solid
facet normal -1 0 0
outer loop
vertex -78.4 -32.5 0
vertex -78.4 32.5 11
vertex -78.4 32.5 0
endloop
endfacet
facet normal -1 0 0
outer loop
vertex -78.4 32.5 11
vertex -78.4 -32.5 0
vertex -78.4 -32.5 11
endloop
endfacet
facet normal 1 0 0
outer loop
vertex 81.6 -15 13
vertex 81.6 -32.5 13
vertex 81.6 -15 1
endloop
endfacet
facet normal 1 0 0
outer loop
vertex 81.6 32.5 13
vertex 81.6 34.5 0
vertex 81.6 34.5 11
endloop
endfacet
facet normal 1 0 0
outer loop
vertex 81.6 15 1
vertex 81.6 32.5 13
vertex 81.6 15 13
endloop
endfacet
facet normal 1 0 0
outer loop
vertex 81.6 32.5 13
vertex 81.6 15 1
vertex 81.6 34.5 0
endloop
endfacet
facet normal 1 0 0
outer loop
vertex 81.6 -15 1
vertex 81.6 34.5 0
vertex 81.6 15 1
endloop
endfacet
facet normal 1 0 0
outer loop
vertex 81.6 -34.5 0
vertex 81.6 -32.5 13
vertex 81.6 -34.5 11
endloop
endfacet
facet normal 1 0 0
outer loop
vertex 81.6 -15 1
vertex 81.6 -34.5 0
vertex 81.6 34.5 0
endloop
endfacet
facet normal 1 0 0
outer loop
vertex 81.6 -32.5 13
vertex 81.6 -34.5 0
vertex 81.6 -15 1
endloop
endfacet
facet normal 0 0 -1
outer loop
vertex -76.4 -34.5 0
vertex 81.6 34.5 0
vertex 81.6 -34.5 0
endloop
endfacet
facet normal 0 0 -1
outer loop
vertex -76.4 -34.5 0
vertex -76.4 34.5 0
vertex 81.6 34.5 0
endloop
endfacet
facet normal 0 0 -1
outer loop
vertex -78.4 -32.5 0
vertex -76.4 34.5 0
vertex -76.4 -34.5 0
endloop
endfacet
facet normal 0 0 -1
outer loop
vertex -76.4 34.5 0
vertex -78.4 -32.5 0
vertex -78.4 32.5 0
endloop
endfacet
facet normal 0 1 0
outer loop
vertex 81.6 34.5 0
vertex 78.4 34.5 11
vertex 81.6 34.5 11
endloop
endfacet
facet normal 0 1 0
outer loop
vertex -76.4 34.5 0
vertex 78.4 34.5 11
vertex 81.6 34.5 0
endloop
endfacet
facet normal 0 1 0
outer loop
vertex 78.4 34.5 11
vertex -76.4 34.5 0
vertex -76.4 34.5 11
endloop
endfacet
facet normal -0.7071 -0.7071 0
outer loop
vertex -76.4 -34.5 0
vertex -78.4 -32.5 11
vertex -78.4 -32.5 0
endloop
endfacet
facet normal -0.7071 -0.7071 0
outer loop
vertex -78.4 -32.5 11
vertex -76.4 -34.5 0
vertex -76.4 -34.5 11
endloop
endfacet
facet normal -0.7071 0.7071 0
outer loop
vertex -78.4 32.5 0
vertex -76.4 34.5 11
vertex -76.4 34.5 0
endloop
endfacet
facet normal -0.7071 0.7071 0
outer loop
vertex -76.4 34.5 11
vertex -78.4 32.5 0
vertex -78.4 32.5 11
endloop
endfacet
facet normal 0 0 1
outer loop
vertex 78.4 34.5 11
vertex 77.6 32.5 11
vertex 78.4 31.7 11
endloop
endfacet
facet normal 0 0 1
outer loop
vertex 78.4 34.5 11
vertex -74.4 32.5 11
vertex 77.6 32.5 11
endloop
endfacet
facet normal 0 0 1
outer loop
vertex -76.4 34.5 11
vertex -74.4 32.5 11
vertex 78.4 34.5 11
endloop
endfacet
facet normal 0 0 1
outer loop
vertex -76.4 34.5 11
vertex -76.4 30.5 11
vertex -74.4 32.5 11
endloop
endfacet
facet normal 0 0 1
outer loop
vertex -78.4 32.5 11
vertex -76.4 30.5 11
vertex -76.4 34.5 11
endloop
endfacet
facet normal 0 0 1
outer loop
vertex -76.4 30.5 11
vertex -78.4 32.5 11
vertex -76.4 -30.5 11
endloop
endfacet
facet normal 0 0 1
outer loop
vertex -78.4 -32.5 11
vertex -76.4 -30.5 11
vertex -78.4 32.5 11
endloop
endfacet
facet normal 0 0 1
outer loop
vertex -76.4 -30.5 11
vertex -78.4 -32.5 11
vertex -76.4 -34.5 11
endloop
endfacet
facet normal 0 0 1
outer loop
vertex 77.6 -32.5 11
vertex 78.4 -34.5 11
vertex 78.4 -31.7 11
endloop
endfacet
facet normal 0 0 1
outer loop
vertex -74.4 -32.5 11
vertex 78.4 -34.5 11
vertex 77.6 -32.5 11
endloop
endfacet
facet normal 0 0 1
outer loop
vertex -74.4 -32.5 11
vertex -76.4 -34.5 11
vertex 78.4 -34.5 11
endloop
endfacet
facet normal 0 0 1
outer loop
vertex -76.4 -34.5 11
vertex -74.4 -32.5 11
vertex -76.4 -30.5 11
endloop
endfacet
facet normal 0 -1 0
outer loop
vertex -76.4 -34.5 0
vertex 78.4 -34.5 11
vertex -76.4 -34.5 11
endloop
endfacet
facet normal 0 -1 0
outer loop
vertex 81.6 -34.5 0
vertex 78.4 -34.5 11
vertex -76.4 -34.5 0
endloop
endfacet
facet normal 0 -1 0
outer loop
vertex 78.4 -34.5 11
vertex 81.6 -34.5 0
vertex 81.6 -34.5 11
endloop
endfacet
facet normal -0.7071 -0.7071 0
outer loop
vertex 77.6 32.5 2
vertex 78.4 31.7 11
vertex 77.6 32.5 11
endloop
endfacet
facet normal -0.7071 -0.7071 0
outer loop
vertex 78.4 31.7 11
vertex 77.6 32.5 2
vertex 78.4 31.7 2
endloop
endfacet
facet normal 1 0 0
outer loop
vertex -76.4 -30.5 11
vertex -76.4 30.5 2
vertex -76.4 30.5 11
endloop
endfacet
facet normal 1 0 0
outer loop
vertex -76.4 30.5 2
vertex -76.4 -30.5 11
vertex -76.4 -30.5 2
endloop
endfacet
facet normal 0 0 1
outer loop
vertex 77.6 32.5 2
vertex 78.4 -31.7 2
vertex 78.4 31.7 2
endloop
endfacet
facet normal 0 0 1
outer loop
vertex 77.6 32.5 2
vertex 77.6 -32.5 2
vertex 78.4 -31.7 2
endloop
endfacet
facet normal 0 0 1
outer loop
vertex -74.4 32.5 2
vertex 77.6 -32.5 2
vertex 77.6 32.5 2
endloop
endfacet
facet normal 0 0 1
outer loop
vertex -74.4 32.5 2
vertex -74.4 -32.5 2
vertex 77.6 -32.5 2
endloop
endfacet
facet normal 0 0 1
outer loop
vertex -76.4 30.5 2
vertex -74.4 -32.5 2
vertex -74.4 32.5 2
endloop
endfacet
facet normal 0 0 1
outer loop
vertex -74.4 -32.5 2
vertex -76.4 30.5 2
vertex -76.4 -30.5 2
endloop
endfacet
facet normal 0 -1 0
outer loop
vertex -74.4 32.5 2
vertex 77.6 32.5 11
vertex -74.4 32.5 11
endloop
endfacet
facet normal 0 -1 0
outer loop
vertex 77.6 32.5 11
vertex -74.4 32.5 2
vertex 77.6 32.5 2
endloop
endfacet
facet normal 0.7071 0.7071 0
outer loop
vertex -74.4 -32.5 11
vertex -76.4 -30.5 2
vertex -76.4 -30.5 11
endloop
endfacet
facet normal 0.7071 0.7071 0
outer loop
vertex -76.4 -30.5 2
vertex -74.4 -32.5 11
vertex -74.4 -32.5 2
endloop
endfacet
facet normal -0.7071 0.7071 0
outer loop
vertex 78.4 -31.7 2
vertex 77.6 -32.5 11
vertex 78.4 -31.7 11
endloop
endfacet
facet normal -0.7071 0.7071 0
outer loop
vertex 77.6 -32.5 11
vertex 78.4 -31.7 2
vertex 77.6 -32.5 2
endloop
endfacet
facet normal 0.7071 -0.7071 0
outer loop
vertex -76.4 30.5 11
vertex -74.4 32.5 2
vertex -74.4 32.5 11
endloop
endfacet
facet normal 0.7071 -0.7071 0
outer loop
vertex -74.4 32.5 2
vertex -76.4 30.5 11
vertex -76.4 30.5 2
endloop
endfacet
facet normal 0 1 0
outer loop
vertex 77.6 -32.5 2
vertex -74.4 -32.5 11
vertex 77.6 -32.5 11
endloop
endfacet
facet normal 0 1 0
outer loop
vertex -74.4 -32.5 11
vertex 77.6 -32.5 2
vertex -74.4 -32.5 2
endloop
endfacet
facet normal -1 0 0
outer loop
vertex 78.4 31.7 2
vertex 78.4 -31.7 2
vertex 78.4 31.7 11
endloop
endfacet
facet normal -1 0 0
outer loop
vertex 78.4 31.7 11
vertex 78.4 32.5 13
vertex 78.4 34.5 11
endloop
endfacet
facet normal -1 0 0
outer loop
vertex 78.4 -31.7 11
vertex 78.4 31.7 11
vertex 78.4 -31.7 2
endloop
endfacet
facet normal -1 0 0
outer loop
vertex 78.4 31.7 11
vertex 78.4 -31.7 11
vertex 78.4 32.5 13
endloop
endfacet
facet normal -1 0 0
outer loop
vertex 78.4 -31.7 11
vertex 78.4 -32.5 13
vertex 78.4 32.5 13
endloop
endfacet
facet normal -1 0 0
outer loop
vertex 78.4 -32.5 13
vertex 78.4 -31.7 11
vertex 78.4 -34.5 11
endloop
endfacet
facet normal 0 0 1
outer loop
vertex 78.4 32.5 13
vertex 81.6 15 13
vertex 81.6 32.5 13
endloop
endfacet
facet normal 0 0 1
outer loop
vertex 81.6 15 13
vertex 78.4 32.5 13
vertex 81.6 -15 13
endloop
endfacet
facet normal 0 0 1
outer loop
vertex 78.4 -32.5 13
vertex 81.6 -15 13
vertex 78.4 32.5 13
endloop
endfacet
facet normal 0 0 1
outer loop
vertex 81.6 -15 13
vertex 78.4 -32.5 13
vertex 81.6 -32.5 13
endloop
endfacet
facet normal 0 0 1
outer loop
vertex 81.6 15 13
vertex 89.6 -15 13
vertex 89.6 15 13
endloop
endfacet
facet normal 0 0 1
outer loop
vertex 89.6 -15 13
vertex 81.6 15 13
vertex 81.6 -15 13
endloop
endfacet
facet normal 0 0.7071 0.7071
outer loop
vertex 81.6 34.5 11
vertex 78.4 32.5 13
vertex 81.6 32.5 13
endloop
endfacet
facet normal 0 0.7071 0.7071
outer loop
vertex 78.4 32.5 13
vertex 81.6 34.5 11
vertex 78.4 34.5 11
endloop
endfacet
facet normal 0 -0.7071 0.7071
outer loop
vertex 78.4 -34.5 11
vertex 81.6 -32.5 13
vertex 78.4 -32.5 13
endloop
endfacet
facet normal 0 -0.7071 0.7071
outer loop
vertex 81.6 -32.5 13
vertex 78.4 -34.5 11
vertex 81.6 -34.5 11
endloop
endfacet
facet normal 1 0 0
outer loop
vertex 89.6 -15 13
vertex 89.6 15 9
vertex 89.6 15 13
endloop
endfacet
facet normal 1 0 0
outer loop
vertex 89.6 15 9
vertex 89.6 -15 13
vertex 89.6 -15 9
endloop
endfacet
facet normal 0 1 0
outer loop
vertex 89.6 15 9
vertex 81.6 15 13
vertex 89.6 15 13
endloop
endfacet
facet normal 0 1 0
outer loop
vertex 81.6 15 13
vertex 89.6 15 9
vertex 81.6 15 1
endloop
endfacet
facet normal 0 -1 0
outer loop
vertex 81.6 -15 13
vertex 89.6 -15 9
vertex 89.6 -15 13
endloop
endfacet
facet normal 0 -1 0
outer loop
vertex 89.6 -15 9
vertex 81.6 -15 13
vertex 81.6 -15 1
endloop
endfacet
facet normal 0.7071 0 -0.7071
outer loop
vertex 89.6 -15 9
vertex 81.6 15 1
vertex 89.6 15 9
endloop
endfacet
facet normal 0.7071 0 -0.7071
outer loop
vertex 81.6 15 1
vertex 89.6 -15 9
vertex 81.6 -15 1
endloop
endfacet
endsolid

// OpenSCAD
// Pull-out drip tray only — prints as modelled, flat on the bed, basin
// up. See marsh_repot_015.scad.
include <marsh_repot_015.scad>
part = "tray";
